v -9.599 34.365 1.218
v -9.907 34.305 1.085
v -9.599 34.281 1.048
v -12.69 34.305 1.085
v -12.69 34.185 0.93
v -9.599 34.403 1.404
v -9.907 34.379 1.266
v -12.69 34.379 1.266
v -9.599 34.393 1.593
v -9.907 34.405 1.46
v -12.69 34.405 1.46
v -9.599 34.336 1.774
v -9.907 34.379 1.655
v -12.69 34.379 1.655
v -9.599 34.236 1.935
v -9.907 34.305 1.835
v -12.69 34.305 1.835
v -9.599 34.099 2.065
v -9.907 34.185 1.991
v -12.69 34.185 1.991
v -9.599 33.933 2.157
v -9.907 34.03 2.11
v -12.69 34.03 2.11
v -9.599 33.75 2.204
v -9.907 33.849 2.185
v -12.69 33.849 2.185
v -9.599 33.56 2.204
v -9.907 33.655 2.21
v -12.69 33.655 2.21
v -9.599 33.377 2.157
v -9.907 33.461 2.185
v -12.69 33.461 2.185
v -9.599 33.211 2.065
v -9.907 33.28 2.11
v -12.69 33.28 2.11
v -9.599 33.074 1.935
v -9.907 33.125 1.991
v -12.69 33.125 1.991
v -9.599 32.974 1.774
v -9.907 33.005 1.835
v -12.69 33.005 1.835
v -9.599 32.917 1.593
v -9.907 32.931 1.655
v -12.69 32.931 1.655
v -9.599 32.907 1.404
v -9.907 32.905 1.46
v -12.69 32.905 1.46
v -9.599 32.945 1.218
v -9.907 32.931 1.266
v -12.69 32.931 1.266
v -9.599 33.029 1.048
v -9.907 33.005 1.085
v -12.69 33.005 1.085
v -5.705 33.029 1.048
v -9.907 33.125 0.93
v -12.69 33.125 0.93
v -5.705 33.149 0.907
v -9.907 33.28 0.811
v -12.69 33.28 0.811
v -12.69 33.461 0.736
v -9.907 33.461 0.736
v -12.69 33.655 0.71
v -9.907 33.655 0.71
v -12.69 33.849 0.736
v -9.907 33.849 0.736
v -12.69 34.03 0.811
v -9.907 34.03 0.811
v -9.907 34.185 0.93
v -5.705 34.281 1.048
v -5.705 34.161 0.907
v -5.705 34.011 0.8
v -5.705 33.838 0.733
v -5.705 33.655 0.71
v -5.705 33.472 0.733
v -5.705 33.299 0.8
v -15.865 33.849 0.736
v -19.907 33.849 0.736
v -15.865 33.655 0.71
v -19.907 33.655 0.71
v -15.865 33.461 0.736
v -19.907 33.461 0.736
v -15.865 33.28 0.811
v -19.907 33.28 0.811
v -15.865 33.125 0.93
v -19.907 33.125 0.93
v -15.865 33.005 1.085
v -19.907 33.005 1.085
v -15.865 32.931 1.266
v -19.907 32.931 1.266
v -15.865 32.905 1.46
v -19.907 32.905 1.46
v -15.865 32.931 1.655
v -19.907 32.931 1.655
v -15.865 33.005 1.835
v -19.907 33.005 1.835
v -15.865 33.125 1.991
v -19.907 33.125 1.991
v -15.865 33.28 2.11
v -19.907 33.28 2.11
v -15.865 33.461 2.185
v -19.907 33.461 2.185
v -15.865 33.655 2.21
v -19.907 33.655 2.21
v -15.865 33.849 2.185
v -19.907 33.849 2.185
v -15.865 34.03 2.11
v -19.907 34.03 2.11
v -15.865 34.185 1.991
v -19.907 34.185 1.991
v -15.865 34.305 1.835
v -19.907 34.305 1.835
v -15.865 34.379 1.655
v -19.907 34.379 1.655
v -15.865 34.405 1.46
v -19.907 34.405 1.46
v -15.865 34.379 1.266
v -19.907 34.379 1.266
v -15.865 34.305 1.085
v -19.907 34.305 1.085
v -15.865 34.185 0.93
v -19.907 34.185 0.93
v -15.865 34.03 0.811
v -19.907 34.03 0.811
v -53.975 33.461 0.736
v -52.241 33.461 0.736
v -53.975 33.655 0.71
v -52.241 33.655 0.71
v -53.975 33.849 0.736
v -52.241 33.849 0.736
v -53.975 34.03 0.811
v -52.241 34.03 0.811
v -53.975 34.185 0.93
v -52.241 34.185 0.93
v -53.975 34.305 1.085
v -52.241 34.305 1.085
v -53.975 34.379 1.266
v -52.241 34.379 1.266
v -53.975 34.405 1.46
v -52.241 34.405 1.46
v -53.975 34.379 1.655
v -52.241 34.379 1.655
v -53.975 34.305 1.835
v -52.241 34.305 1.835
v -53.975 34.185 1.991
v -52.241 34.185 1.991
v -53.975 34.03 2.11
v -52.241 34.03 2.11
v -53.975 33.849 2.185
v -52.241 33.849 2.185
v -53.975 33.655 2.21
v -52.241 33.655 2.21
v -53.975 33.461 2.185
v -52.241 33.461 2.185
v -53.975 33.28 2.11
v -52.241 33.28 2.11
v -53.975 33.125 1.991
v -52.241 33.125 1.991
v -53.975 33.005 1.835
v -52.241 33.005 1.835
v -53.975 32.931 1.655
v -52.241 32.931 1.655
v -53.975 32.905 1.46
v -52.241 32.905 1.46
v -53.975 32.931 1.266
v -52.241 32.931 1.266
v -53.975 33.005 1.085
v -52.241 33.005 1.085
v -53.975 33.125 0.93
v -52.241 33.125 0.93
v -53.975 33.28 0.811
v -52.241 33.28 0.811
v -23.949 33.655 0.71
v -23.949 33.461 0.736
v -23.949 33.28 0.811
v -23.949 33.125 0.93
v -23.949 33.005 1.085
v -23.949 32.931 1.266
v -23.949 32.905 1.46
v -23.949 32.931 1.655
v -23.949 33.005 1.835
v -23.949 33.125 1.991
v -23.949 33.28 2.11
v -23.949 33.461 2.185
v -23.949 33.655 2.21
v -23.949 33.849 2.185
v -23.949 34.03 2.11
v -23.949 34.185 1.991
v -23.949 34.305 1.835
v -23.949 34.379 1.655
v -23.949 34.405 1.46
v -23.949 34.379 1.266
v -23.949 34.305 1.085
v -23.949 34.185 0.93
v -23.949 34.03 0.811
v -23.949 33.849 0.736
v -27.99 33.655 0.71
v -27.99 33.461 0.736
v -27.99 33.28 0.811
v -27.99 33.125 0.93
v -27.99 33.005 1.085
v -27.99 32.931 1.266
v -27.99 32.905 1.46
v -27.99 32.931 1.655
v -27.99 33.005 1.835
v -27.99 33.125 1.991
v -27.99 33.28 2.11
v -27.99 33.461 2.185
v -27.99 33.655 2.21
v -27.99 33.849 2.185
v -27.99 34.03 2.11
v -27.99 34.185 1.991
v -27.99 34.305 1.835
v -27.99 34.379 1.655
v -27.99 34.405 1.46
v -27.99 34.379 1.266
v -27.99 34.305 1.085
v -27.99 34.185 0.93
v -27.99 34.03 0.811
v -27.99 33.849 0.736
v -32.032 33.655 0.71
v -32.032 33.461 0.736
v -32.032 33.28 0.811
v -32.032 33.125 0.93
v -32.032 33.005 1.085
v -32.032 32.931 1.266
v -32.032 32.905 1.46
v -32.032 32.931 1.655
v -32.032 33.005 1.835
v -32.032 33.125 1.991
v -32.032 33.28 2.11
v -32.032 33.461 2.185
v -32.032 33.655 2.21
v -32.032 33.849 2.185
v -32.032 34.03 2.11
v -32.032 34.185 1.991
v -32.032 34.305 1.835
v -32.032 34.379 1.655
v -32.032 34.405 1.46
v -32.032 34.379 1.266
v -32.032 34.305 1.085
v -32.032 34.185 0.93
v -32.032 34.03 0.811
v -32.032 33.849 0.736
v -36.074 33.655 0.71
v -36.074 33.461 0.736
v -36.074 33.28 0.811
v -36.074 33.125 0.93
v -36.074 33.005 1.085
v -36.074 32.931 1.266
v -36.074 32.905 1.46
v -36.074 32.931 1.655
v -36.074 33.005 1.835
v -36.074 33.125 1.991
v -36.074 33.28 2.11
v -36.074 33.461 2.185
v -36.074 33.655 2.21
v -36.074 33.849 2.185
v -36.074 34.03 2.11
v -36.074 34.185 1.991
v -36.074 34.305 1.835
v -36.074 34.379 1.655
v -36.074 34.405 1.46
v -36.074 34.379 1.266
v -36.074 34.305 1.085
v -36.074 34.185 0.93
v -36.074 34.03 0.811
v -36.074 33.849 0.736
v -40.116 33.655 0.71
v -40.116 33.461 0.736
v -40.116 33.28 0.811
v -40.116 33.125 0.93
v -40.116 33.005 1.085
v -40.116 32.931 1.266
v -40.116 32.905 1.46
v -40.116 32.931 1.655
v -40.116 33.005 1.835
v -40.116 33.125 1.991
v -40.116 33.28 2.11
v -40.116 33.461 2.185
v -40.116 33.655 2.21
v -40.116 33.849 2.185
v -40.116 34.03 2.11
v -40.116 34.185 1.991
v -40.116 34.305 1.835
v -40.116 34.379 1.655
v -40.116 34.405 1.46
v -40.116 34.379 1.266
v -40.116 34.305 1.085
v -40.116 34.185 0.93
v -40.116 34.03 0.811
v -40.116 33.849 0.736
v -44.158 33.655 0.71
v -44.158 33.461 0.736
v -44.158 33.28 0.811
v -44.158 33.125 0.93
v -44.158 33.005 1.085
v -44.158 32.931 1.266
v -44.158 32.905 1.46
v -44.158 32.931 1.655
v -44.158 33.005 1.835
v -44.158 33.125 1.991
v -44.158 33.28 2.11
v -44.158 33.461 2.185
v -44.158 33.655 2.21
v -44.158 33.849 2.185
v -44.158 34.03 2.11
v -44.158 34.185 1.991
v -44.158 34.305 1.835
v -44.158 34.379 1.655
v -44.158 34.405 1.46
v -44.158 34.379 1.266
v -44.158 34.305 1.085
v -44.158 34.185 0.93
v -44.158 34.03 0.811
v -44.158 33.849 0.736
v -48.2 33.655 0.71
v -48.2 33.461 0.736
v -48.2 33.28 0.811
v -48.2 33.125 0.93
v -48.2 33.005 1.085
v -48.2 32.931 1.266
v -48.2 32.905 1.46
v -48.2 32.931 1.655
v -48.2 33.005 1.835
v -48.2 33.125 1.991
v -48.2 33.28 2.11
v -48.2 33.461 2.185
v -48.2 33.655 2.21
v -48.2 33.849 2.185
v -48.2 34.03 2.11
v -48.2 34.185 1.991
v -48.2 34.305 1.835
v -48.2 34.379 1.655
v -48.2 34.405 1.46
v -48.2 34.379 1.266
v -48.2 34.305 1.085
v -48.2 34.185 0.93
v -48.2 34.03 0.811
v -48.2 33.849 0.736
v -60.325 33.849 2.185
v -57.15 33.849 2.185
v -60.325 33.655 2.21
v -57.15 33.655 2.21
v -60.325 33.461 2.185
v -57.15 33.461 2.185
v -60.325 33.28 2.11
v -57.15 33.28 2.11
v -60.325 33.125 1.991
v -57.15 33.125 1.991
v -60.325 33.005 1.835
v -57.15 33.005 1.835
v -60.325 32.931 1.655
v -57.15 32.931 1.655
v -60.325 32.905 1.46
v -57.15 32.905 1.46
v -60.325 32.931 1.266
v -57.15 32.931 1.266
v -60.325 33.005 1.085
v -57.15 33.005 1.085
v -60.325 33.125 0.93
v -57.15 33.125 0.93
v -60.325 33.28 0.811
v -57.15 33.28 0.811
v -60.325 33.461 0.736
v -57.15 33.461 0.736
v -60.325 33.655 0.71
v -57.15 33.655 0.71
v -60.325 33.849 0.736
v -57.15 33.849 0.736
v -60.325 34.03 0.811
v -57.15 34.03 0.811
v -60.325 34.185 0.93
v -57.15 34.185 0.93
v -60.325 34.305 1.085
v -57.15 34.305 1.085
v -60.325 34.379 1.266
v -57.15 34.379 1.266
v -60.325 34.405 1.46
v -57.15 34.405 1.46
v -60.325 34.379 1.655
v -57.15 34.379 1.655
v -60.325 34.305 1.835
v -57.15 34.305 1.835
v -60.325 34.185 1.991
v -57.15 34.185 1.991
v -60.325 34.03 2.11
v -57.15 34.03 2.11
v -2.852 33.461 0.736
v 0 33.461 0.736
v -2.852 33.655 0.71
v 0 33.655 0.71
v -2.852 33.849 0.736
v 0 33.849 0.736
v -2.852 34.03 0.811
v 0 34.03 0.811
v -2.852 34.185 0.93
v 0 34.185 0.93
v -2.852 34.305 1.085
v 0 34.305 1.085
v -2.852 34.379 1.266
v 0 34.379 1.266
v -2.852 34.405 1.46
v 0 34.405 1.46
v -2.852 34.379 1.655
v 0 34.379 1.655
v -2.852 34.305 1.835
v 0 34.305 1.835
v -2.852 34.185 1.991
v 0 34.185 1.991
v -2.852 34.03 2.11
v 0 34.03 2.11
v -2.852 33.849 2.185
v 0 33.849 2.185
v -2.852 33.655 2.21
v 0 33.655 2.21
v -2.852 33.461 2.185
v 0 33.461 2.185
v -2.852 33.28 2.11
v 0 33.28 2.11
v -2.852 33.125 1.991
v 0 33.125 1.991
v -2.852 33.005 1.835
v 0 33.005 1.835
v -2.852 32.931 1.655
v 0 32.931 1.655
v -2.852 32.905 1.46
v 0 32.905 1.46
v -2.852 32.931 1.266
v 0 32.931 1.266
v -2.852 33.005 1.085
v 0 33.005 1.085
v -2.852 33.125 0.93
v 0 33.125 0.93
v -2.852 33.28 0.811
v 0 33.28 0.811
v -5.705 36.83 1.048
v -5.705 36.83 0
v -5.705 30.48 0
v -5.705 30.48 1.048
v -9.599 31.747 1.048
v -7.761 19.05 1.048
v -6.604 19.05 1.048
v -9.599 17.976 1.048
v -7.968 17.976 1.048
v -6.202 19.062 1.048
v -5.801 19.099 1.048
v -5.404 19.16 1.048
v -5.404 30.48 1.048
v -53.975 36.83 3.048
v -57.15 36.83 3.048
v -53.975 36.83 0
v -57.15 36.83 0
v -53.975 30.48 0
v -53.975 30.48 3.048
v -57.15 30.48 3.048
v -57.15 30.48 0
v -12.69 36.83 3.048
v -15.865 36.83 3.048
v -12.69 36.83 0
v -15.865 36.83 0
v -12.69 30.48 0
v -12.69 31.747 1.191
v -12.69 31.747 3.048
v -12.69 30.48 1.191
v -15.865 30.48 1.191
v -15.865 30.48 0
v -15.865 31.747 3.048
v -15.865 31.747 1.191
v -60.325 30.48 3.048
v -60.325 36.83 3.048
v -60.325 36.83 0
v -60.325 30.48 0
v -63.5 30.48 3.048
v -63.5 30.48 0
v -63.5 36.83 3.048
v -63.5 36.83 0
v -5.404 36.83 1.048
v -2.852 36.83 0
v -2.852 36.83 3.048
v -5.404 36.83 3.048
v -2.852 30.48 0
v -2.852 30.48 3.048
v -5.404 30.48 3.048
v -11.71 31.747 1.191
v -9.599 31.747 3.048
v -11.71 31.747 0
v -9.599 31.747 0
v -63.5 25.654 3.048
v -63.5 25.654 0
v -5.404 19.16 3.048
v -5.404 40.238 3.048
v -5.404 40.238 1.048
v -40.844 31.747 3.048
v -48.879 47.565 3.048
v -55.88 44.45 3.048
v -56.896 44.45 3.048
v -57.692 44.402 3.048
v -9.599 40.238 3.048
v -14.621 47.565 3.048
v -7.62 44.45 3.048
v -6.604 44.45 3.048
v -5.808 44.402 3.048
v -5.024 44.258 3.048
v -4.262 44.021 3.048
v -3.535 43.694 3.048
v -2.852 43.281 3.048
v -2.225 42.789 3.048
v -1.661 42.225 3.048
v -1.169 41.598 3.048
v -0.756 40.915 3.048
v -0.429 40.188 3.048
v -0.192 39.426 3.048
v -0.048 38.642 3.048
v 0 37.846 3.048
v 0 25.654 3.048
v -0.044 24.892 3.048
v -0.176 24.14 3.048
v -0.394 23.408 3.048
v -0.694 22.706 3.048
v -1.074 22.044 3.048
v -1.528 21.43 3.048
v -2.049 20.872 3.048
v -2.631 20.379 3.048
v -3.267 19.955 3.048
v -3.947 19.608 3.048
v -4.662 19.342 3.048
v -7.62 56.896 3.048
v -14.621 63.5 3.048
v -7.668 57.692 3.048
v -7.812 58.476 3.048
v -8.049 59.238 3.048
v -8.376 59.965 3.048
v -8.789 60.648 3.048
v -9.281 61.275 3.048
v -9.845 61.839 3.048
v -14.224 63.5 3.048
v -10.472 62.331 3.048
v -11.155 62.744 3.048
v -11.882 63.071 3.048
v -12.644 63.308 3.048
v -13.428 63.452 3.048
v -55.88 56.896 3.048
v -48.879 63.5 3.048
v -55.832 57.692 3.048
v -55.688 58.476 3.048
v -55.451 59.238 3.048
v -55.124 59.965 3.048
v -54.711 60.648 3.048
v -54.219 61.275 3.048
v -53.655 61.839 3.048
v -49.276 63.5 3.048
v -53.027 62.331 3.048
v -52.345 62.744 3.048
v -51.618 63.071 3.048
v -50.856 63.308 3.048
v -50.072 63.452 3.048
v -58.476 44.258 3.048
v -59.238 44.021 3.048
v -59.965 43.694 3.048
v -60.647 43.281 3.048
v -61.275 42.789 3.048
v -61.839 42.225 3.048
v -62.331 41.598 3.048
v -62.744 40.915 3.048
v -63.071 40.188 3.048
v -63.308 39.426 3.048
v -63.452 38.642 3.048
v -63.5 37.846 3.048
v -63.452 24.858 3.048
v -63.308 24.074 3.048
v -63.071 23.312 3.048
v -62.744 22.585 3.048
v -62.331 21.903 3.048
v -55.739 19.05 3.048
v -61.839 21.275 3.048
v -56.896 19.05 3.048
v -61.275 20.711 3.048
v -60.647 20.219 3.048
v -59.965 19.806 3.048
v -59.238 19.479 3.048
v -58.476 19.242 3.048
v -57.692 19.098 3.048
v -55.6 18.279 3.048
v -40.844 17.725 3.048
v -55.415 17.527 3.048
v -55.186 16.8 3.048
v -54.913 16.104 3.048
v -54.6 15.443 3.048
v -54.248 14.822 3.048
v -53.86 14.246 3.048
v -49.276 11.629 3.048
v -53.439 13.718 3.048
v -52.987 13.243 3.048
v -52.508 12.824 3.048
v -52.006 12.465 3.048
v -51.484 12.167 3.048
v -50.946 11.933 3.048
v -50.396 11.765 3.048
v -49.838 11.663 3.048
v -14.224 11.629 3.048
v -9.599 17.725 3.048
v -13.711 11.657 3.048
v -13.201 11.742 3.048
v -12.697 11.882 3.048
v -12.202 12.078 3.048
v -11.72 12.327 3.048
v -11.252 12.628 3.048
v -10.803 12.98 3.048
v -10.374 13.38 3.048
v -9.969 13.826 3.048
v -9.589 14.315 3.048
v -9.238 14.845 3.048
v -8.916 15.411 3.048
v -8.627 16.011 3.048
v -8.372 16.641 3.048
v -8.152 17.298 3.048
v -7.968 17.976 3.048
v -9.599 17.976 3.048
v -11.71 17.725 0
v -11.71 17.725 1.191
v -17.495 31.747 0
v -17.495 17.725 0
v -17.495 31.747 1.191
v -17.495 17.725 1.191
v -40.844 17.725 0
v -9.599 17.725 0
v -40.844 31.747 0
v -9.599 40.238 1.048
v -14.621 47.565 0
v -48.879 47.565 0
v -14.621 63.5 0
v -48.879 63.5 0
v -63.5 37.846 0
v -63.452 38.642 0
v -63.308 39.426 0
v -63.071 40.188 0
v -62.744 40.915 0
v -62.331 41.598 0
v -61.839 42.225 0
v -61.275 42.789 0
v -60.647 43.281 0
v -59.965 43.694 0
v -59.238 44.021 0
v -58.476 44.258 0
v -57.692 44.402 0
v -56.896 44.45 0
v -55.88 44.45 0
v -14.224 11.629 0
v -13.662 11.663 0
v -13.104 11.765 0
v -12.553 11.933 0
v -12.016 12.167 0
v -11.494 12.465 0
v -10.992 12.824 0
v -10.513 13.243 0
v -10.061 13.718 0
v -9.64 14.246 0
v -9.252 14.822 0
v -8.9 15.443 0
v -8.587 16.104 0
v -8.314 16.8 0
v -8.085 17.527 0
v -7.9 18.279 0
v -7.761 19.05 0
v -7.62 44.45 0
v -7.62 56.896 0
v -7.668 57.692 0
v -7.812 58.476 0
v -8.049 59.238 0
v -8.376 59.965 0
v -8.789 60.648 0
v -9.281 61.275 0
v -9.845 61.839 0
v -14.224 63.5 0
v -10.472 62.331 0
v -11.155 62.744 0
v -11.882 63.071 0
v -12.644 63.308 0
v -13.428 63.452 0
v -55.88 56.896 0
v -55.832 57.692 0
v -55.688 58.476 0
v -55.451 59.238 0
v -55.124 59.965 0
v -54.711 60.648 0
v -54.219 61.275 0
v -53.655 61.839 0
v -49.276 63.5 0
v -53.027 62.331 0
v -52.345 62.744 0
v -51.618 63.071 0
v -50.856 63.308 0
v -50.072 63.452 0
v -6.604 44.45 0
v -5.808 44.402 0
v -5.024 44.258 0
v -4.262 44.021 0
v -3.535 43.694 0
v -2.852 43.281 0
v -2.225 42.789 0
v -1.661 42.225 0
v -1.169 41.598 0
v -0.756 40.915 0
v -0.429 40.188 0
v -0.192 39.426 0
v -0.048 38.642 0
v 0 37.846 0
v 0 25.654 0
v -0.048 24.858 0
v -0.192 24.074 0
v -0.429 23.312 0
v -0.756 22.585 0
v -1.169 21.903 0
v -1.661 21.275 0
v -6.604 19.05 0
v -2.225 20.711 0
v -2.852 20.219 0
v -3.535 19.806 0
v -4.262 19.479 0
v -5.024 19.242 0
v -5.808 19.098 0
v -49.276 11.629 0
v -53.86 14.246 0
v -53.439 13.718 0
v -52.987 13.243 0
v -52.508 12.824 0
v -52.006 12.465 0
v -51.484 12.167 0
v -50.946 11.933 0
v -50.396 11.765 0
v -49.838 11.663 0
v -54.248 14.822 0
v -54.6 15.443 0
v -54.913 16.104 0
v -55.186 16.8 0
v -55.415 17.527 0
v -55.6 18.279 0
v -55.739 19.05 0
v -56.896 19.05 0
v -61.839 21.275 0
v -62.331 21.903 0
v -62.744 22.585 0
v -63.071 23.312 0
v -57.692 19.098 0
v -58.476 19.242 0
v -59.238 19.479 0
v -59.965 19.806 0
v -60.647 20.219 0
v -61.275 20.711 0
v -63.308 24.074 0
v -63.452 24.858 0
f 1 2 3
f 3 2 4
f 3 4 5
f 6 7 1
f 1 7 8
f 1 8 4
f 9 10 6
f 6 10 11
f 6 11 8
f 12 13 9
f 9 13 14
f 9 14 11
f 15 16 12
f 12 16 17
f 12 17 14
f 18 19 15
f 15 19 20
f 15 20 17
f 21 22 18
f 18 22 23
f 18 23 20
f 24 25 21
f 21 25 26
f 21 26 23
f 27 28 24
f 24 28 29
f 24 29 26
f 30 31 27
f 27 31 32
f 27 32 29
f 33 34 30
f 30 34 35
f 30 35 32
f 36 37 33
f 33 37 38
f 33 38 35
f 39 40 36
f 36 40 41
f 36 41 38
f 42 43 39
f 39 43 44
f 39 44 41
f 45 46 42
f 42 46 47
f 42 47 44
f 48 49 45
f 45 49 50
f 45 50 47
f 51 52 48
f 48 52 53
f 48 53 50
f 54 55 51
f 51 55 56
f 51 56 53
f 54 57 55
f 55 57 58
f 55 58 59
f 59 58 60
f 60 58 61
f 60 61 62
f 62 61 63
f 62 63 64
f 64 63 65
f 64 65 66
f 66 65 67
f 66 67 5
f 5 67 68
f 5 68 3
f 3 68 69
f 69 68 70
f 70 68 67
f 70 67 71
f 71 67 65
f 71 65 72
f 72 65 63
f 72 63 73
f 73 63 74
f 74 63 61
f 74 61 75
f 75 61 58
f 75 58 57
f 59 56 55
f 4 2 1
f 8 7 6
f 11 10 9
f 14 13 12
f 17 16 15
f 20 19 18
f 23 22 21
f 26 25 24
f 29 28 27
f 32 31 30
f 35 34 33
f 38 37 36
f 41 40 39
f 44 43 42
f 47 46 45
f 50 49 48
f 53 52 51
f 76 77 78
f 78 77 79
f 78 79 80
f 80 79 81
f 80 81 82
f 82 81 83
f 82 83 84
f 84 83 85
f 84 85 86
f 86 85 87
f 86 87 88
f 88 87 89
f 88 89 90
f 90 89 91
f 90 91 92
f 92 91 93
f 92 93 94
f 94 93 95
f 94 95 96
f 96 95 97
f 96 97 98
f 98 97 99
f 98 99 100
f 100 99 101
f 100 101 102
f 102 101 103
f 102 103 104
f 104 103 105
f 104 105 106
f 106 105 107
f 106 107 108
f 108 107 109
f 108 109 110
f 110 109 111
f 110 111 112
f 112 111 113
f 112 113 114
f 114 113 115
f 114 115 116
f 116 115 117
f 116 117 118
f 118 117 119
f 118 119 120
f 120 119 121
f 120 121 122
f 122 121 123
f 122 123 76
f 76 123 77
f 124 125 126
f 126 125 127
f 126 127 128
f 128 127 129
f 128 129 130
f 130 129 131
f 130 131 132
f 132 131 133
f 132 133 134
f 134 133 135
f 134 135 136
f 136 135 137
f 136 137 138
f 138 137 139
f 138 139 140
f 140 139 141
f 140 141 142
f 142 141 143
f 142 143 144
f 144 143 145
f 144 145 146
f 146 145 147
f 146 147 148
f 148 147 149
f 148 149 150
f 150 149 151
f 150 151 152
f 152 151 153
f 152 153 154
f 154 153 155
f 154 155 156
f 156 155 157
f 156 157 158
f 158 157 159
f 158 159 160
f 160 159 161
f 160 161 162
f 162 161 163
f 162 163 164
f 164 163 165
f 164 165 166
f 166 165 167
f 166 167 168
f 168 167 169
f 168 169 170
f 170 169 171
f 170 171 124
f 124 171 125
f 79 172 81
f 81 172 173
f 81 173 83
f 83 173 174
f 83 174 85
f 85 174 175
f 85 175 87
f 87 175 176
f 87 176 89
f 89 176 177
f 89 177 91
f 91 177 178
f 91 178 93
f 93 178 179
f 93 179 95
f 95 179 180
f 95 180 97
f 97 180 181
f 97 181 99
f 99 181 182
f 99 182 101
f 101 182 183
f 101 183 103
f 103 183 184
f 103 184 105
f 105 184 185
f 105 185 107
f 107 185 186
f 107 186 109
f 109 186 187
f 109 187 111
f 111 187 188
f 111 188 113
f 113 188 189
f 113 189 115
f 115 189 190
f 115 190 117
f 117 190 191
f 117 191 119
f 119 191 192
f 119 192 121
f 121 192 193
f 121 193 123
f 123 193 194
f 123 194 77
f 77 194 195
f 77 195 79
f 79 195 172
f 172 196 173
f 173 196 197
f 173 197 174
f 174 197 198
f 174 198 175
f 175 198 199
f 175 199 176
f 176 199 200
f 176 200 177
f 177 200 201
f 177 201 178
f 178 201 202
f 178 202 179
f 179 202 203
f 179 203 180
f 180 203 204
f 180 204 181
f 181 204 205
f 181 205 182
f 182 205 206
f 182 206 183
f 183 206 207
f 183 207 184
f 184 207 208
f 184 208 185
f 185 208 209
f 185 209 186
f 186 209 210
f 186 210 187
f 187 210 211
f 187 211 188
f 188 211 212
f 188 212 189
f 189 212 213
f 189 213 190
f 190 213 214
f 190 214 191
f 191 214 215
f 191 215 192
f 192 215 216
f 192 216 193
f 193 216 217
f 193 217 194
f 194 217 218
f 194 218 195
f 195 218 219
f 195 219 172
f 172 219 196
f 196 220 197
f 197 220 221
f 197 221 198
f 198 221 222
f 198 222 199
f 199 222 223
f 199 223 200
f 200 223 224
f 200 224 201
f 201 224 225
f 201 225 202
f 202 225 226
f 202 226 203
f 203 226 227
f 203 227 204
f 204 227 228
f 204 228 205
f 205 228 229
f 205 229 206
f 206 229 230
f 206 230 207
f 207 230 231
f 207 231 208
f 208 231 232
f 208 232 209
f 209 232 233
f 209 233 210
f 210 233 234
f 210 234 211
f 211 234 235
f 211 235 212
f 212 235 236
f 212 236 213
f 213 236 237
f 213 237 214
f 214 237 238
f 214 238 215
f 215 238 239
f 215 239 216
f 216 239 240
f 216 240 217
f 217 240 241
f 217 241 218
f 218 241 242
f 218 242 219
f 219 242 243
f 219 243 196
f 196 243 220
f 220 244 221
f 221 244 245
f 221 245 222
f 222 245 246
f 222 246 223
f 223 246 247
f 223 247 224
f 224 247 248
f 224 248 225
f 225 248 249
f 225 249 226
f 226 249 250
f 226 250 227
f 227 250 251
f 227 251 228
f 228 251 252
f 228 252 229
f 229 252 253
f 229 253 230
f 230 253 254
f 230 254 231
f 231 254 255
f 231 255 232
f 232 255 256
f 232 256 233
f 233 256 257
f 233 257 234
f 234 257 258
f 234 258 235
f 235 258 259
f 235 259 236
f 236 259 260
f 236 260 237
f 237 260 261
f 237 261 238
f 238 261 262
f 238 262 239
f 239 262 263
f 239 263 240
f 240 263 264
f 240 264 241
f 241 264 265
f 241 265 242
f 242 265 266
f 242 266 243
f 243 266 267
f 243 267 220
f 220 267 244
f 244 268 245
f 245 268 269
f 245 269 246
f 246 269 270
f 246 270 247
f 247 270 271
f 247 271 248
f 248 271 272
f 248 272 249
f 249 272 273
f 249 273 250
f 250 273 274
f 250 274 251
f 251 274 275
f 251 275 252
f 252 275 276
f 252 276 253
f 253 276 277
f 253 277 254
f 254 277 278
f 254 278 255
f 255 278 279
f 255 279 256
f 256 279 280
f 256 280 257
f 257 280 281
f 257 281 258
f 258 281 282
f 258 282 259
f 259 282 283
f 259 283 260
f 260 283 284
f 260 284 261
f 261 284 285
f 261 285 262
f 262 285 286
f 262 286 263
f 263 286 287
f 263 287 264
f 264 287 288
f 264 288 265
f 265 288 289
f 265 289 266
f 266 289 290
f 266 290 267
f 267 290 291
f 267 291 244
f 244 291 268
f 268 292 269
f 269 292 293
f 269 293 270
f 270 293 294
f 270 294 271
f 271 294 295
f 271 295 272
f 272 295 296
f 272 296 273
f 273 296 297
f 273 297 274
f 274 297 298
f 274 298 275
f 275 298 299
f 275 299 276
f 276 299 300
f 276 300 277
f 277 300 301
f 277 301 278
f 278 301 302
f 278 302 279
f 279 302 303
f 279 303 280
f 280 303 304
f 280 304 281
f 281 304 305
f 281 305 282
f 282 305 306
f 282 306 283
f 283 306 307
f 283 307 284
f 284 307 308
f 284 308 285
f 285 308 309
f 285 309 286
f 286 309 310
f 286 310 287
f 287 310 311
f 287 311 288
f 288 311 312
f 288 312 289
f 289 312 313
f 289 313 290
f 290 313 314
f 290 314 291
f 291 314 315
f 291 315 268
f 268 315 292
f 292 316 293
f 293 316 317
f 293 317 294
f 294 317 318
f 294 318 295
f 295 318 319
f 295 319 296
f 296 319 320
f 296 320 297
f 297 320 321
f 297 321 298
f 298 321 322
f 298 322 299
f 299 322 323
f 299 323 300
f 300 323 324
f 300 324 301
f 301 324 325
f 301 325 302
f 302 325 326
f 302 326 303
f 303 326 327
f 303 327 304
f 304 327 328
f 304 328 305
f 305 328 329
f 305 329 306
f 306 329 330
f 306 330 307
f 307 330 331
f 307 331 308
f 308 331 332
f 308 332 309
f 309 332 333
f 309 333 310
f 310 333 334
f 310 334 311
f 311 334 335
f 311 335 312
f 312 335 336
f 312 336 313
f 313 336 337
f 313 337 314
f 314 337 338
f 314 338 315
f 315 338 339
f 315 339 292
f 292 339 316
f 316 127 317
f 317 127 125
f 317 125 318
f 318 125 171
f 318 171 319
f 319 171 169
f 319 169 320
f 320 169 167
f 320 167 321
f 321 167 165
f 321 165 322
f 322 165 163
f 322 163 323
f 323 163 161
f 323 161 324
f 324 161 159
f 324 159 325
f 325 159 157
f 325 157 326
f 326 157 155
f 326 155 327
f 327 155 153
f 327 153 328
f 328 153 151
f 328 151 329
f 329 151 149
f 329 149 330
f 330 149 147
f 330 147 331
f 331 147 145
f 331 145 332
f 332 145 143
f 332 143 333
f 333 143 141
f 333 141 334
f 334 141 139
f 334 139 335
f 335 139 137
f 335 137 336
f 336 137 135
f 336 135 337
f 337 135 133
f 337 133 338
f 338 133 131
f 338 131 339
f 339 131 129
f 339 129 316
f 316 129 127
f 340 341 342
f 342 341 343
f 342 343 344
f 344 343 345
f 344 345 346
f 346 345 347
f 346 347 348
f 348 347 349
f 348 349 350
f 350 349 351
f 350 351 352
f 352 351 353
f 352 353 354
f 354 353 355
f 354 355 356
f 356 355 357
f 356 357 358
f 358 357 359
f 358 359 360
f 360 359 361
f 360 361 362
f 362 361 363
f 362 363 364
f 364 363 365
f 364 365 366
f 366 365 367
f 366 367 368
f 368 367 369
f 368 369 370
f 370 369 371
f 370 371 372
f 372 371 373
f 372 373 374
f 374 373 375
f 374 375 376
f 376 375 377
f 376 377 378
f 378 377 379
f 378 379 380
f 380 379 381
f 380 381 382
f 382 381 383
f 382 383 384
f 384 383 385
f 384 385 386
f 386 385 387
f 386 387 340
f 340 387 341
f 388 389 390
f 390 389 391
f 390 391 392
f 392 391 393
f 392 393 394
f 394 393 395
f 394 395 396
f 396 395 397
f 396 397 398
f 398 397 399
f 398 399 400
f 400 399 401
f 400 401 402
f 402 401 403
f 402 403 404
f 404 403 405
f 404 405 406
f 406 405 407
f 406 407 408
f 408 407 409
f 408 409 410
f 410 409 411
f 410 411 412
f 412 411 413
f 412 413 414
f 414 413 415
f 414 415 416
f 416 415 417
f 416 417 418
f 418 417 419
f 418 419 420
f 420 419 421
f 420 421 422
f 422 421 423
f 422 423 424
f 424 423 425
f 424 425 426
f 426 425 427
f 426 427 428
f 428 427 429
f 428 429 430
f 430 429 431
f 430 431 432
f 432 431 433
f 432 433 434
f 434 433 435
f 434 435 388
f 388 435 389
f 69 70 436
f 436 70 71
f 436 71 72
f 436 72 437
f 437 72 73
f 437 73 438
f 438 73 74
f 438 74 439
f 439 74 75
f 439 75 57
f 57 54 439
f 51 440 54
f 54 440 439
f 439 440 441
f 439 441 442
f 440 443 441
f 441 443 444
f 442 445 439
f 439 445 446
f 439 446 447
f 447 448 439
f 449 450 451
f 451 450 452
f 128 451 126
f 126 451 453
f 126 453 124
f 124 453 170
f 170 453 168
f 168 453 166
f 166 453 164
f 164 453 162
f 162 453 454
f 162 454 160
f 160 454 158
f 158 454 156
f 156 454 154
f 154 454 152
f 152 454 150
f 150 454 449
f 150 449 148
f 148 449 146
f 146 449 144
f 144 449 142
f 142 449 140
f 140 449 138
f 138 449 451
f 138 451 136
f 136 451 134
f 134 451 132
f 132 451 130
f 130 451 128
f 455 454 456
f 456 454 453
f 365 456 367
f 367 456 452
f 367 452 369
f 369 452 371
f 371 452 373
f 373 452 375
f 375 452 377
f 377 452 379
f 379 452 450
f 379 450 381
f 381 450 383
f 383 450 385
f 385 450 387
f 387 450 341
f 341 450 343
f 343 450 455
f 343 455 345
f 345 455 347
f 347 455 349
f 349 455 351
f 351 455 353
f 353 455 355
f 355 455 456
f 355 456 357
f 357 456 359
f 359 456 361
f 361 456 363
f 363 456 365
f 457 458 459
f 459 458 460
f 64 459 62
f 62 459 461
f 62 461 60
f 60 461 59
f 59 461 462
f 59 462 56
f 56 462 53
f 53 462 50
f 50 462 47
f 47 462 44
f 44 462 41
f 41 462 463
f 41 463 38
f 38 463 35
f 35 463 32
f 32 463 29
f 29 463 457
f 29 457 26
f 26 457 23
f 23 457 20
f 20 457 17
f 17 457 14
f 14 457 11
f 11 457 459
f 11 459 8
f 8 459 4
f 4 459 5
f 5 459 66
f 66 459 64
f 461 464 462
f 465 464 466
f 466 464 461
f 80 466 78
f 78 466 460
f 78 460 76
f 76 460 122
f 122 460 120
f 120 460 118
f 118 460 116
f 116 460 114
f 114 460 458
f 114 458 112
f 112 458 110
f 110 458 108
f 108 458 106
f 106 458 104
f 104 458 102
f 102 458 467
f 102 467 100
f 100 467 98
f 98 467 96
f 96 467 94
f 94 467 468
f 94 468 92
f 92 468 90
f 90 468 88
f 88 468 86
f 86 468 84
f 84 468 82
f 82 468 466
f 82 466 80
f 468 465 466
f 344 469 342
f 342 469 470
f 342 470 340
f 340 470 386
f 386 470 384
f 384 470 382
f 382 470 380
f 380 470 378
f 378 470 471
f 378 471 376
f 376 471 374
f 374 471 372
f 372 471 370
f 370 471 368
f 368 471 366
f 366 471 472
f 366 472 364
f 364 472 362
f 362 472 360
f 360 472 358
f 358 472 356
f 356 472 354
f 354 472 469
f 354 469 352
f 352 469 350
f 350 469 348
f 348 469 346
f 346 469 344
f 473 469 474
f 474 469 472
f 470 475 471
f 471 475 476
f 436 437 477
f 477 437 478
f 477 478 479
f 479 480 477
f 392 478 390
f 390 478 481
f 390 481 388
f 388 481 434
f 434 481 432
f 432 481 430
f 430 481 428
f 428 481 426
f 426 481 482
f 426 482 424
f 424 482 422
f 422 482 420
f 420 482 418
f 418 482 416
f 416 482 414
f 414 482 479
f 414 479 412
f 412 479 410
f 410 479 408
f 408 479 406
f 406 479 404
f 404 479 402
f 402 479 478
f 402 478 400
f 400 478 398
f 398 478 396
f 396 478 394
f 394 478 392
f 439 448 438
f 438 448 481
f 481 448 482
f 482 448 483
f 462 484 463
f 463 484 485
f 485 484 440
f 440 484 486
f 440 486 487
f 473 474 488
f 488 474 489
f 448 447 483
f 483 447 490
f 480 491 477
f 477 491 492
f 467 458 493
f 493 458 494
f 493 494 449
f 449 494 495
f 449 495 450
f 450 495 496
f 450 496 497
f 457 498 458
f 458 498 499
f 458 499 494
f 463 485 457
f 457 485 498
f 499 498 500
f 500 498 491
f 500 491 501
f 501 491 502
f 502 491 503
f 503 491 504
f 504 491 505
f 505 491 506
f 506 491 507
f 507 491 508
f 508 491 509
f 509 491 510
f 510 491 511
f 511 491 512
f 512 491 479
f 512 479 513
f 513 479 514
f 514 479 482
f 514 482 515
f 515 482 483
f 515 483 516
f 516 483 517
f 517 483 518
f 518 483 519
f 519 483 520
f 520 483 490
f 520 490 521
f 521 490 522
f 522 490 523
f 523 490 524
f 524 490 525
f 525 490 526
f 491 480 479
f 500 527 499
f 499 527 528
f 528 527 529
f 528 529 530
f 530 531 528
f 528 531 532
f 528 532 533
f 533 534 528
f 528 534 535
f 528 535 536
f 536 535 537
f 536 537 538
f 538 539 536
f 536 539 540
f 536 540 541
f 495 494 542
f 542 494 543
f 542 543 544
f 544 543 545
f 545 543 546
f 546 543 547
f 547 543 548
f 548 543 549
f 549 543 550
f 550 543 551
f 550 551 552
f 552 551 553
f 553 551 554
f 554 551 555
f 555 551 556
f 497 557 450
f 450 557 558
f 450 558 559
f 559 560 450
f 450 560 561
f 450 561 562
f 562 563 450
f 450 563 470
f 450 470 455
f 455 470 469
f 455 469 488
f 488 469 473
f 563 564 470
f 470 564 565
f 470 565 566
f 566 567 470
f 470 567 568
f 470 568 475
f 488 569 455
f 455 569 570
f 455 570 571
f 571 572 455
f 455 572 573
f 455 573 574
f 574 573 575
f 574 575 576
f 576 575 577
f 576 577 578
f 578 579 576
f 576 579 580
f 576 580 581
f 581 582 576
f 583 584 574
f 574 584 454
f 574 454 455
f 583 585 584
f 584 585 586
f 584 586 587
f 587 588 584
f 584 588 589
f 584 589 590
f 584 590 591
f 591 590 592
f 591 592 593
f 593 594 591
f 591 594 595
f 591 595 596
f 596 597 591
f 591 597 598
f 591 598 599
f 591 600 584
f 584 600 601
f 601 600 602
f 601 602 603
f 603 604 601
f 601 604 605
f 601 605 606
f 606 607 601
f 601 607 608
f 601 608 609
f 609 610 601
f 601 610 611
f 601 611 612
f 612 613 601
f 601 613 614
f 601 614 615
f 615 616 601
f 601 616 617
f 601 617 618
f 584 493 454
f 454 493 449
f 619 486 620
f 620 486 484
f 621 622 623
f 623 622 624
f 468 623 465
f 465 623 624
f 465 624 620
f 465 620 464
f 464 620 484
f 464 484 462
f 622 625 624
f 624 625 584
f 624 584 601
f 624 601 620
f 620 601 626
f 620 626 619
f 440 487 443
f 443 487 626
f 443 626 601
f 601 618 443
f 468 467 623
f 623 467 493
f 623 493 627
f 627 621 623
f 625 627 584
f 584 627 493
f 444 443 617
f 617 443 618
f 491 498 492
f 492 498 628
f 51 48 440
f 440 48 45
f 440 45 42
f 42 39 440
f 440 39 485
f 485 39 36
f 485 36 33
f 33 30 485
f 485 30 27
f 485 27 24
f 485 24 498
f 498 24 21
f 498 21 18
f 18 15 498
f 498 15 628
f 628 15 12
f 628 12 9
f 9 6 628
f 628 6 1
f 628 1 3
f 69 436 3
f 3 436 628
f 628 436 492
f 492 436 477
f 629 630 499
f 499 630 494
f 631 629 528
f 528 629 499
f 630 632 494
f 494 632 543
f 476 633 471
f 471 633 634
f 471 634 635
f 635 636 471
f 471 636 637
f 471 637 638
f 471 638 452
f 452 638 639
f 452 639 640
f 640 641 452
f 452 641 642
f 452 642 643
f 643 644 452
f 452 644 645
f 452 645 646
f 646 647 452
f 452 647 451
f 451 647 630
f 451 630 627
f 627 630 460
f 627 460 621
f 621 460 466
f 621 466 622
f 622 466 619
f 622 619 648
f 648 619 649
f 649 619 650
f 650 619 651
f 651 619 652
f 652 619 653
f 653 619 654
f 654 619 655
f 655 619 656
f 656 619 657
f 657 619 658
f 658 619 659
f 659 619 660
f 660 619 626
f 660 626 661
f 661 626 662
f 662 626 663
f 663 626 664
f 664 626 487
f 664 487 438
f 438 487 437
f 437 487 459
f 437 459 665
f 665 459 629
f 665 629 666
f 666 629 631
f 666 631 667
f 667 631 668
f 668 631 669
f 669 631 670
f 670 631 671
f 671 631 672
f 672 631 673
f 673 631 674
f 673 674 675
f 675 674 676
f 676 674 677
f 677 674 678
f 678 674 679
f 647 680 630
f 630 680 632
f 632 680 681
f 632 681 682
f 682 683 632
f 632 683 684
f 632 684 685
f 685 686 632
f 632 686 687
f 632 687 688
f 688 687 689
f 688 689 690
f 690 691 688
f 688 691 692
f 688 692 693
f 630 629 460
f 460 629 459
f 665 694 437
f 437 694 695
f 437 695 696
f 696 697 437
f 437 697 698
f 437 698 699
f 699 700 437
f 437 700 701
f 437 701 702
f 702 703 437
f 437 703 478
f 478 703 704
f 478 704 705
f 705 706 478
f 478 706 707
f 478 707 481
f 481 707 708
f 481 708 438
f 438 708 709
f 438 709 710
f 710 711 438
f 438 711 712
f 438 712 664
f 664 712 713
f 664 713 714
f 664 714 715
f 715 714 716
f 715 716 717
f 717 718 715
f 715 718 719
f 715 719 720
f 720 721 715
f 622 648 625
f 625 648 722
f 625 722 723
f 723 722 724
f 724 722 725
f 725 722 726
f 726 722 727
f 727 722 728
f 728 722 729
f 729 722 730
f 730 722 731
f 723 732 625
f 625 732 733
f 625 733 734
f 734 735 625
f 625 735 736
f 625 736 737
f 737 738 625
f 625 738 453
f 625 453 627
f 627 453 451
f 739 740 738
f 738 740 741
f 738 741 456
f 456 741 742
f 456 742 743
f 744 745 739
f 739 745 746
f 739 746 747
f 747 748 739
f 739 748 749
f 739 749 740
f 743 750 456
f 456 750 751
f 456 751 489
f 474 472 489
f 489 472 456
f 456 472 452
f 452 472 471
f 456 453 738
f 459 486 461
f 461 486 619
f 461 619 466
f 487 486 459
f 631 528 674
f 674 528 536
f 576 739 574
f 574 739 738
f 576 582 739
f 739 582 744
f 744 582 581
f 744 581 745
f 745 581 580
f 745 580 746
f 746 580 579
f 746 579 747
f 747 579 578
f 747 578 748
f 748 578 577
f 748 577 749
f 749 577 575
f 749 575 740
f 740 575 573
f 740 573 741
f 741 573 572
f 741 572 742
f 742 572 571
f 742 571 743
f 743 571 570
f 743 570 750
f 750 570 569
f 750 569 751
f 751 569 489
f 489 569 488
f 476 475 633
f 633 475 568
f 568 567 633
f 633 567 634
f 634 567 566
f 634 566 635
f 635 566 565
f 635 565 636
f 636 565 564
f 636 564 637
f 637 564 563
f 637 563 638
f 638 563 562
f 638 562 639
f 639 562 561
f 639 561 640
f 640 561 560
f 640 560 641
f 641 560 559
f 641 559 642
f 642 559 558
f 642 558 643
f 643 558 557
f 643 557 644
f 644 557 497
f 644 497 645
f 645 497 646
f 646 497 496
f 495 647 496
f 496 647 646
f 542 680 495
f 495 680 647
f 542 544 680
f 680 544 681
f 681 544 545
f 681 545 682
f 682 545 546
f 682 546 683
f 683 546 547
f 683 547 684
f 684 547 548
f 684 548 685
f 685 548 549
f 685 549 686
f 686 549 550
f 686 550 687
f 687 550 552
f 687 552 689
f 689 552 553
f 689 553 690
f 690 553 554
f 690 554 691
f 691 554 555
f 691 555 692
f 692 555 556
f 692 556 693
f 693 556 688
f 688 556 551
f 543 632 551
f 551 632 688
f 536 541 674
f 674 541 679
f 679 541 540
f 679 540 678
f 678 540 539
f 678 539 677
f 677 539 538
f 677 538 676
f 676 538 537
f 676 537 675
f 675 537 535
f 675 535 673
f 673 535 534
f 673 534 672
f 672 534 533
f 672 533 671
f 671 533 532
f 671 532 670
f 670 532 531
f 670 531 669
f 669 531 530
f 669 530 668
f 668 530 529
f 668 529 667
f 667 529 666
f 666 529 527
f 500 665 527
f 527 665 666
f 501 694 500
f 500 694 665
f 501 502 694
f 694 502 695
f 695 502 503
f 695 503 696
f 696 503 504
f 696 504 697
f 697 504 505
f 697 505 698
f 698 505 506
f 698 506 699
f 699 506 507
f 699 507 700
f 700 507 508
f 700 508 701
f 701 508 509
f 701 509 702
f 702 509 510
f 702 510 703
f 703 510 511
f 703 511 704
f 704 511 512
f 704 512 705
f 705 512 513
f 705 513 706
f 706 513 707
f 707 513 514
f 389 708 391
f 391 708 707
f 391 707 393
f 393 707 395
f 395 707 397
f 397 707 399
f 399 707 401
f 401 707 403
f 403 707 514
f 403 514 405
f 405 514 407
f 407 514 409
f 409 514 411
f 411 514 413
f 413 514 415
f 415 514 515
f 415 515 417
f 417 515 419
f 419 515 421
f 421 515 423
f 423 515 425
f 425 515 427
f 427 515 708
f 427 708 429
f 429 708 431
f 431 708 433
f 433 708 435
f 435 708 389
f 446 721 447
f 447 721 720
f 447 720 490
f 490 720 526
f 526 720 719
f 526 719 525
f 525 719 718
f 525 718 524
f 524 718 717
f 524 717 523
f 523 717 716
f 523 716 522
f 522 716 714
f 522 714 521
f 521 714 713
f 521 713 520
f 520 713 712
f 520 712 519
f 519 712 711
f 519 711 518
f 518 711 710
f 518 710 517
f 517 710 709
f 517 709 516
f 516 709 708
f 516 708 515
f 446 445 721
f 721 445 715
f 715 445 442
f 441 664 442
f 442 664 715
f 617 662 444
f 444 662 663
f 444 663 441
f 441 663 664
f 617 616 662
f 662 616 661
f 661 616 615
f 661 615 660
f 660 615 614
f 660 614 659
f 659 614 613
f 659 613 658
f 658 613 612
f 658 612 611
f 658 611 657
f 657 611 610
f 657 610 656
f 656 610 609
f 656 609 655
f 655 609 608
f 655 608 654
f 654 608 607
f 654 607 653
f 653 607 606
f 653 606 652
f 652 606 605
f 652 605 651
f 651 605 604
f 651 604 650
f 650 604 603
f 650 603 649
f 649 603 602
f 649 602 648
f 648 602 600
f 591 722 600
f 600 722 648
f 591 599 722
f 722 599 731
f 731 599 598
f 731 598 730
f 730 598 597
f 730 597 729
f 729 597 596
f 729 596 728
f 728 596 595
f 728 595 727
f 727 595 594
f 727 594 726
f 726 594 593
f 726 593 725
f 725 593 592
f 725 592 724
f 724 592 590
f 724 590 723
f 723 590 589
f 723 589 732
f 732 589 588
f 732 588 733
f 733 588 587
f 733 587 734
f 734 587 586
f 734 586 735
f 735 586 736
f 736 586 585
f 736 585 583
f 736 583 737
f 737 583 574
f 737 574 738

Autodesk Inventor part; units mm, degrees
ref_plane "YZ Plane" through (0, 0, 0) normal (1, 0, 0) x (0, 1, 0)
ref_plane "XZ Plane" through (0, 0, 0) normal (0, 1, 0) x (-1, 0, 0)
ref_plane "XY Plane" through (0, 0, 0) normal (0, 0, 1) x (1, 0, 0)
ref_plane "Work Plane1" through (3.6062, 5.0251, 0) normal (0, 0, 1) x (1, 0, 0)
sketch "Sketch1" plane through (3.6062, 5.0251, 0) normal (0, 0, 1) x (1, 0, 0)
  line L0 (-59.3453, 14.0249) -> (-60.5022, 14.0249)
  ellipse E0 centre (-52.8822, 15.9436) end of major axis (-52.8822, 6.6041) minor radius 6.604 (-59.3453, 14.0249) -> (-52.8822, 6.6041) ccw
  line L1 (-52.8822, 6.6041) -> (-17.8302, 6.6041)
  ellipse E1 centre (-17.8302, 15.9436) end of major axis (-17.8302, 25.2831) minor radius 6.604 (-17.8302, 6.6041) -> (-11.367, 14.0249) ccw
  line L2 (-10.2102, 14.0249) -> (-11.367, 14.0249)
  arc A0 (-10.2102, 14.0249) -> (-3.6062, 20.6289) centre (-10.2102, 20.6289) ccw
  line L3 (-3.6062, 20.6289) -> (-3.6062, 32.8209)
  arc A1 (-3.6062, 32.8209) -> (-10.2102, 39.4249) centre (-10.2102, 32.8209) ccw
  line L4 (-11.2262, 39.4249) -> (-10.2102, 39.4249)
  line L5 (-11.2262, 51.8709) -> (-11.2262, 39.4249)
  arc A2 (-11.2262, 51.8709) -> (-17.8302, 58.4749) centre (-17.8302, 51.8709) ccw
  line L6 (-17.8302, 58.4749) -> (-52.8822, 58.4749)
  arc A3 (-52.8822, 58.4749) -> (-59.4862, 51.8709) centre (-52.8822, 51.8709) ccw
  line L7 (-59.4862, 39.4249) -> (-59.4862, 51.8709)
  line L8 (-60.5022, 39.4249) -> (-59.4862, 39.4249)
  arc A4 (-60.5022, 39.4249) -> (-67.1062, 32.8209) centre (-60.5022, 32.8209) ccw
  line L9 (-67.1062, 20.6289) -> (-67.1062, 32.8209)
  arc A5 (-67.1062, 20.6289) -> (-60.5022, 14.0249) centre (-60.5022, 20.6289) ccw
  line L10 (-52.8822, 6.6041) -> (-17.8302, 6.6041)
  point P0 (-3.6062, -5.0251)
extrude "Plate1" add sketch "Sketch1" along normal blind 3.048
sketch "Sketch2" plane through (3.6062, 5.0251, 3.048) normal (0, 0, 1) x (1, 0, 0)
  line L0 (-19.2272, 69.2699) -> (-19.2272, 51.2359) projected
  line L1 (-42.2142, 43.5397) -> (-28.4982, 43.5397) projected
  line L2 (-51.4852, 51.2359) -> (-51.4852, 69.2699) projected
  line L3 (-19.2272, 58.5208) -> (-19.2272, 43.5397)
  line L4 (-19.2272, 43.5397) -> (-51.4852, 43.5397)
  line L5 (-51.4852, 43.5397) -> (-51.4852, 64.3147)
  line L6 (-52.4852, 58.4749) -> (-52.4852, 42.5397)
  line L7 (-52.4852, 42.5397) -> (-18.2272, 42.5397)
  line L8 (-18.2272, 42.5397) -> (-18.2272, 58.5208)
  line L9 (-52.8822, 58.4749) -> (-17.8302, 58.4749) projected
  point P0 (0, 0)
  point P1 (-18.2272, 58.4749)
  dimension "d2" = 1
extrude "Extrusion2" cut sketch "Sketch2" against normal through all
sketch "Sketch4" plane through (3.6062, 5.0251, 3.048) normal (0, 0, 1) x (1, 0, 0)
  line L0 (-12.8862, 21.4549) -> (-12.8862, 17.4549) projected
  line L1 (-9.0098, 35.2125) -> (-13.2052, 35.2125)
  line L2 (-13.2052, 35.2125) -> (-13.2052, 18.2304)
  line L3 (-13.2052, 18.2304) -> (-12.8862, 18.2304)
  line L4 (-9.0098, 16.8588) -> (-9.0098, 35.2125)
  line L5 (-9.0098, 35.2125) -> (-13.2052, 18.2304) construction
  line L6 (-13.2052, 35.2125) -> (-9.0098, 16.8588) construction
  line L7 (-12.8862, 21.4549) -> (-12.8862, 17.4549) projected
  line L8 (-3.6062, 30.2174) -> (-8.2582, 30.2174)
  line L9 (-12.8862, 17.9549) -> (-3.6562, 17.9549)
  line L10 (-12.8862, 21.4549) -> (-12.8862, 17.4549) projected
  line L11 (-13.2052, 18.2304) -> (-12.8862, 18.2304)
  line L12 (-9.0098, 16.8588) -> (-9.0098, 12.9511)
  line L13 (-9.0098, 12.9511) -> (-13.2052, 12.9511)
  line L14 (-13.2052, 12.9511) -> (-13.2052, 18.2304)
  point P0 (-3.6062, -5.0251)
  point P1 (-11.1889, 26.3919)
  point P2 (-11.1075, 26.7215)
  dimension "d18" = 4.1954
  dimension "d23" = 4.9951
  dimension "d24" = 0.3191
  dimension "d25" = 5.0038
extrude "Extrusion3" cut sketch "Sketch4" against normal blind 2
sketch "Sketch5" plane through (3.6062, 5.0251, 3.048) normal (0, 0, 1) x (1, 0, 0)
  line L0 (-52.4852, 42.5397) -> (-52.4852, 58.4749) projected
  line L1 (-52.8822, 58.4749) -> (-52.4852, 58.4749) projected
  arc A0 (-52.8822, 58.4749) -> (-59.4862, 51.8709) centre (-52.8822, 51.8709) ccw projected
  line L2 (-59.4862, 39.4249) -> (-59.4862, 51.8709) projected
  line L3 (-60.5022, 39.4249) -> (-59.4862, 39.4249) projected
  arc A1 (-60.5022, 39.4249) -> (-67.1062, 32.8209) centre (-60.5022, 32.8209) ccw projected
  line L4 (-67.1062, 20.6289) -> (-67.1062, 32.8209) projected
  arc A2 (-67.1062, 20.6289) -> (-60.5022, 14.0249) centre (-60.5022, 20.6289) ccw projected
  line L5 (-59.3453, 14.0249) -> (-60.5022, 14.0249) projected
  ellipse E0 centre (-52.8822, 15.9436) end of major axis (-52.8822, 6.6041) minor radius 6.604 (-59.3453, 14.0249) -> (-52.8822, 6.6041) ccw projected
  line L6 (-17.8302, 6.6041) -> (-52.8822, 6.6041) projected
  ellipse E1 centre (-17.8302, 15.9436) end of major axis (-17.8302, 25.2831) minor radius 6.604 (-17.8302, 6.6041) -> (-11.5743, 12.9511) ccw projected
  arc A3 (-9.0098, 14.1349) -> (-3.6062, 20.6289) centre (-10.2102, 20.6289) ccw projected
  line L7 (-3.6062, 32.8209) -> (-3.6062, 20.6289) projected
  arc A4 (-3.6062, 32.8209) -> (-10.2102, 39.4249) centre (-10.2102, 32.8209) ccw projected
  line L8 (-11.2262, 39.4249) -> (-10.2102, 39.4249) projected
  line L9 (-11.2262, 51.8709) -> (-11.2262, 39.4249) projected
  arc A5 (-11.2262, 51.8709) -> (-17.8302, 58.4749) centre (-17.8302, 51.8709) ccw projected
  line L10 (-18.2272, 58.4749) -> (-17.8302, 58.4749) projected
  line L11 (-18.2272, 58.4749) -> (-18.2272, 42.5397) projected
  line L12 (-18.2272, 42.5397) -> (-52.4852, 42.5397) projected
  line L13 (-13.2052, 12.9511) -> (-13.2052, 35.2125) projected
  line L14 (-44.45, 12.7) -> (-13.2052, 12.7)
  line L15 (-13.2052, 12.7) -> (-13.2052, 26.7215)
  line L16 (-13.2052, 26.7215) -> (-44.45, 26.7215)
  line L17 (-44.45, 26.7215) -> (-44.45, 12.7)
  line L18 (-11.5743, 12.9511) -> (-13.2052, 12.9511) projected
  line L19 (-13.2052, 12.9511) -> (-13.2052, 35.2125) projected
  line L20 (-13.2052, 35.2125) -> (-9.0098, 35.2125) projected
  line L21 (-9.0098, 35.2125) -> (-9.0098, 14.1349) projected
  point P0 (-3.6062, -5.0251)
  point P1 (-13.2052, 18.2304)
  point P2 (-41.0062, 13.5399)
  point P3 (-60.0729, 27.6299)
  dimension "d19" = 14.0215
  dimension "d20" = 31.2448
extrude "Extrusion4" cut sketch "Sketch5" against normal blind 58.7375 contours L13 L15 L14 L17 L16
sketch "Sketch6" plane through (3.6062, 5.0251, 0) normal (0, 0, -1) x (-1, 0, 0)
  line L0 (13.2052, 12.7) -> (44.45, 12.7) projected
  line L1 (13.2052, 26.7215) -> (44.45, 26.7215) projected
  line L2 (44.45, 12.7) -> (13.2052, 12.7) projected
  line L3 (21.1013, 12.7) -> (21.1013, 26.7215)
  line L4 (15.3165, 12.7) -> (15.3165, 26.7215)
  point P0 (3.6062, -5.0251)
extrude "Extrusion5" add sketch "Sketch6" against normal blind 1.1906
sketch "Sketch7" plane through (3.6062, 5.0251, 0) normal (0, 0, -1) x (-1, 0, 0)
  line L0 (67.1062, 25.4549) -> (67.1062, 31.8049) projected
  line L1 (67.1062, 31.8049) -> (63.9312, 31.8049) projected
  line L2 (63.9312, 31.8049) -> (63.9312, 25.4549) projected
  line L3 (63.9312, 25.4549) -> (67.1062, 25.4549) projected
  line L4 (57.5812, 31.8049) -> (57.5812, 25.4549) projected
  line L5 (57.5812, 25.4549) -> (60.7562, 25.4549) projected
  line L6 (60.7562, 25.4549) -> (60.7562, 31.8049) projected
  line L7 (60.7562, 31.8049) -> (57.5812, 31.8049) projected
  line L8 (6.4587, 31.8049) -> (6.4587, 25.4549) projected
  line L9 (6.4587, 25.4549) -> (9.3112, 25.4549) projected
  line L10 (9.3112, 25.4549) -> (9.3112, 31.8049) projected
  line L11 (9.3112, 31.8049) -> (6.4587, 31.8049) projected
  line L12 (19.4712, 25.4549) -> (19.4712, 31.8049) projected
  line L13 (19.4712, 31.8049) -> (16.2962, 31.8049) projected
  line L14 (16.2962, 31.8049) -> (16.2962, 25.4549) projected
  line L15 (16.2962, 25.4549) -> (19.4712, 25.4549) projected
  point P0 (3.6062, -5.0251)
extrude "Extrusion6" cut sketch "Sketch7" against normal blind 3.175
sketch "Sketch8" plane through (-60.325, 30.48, 0) normal (-1, 0, 0) x (0, 0, 1)
  circle A0 centre (1.4605, 3.175) radius 0.75 projected
  point P0 (0, -30.48)
extrude "Extrusion7" cut sketch "Sketch8" against normal through all
equation "\"d5\" = Thickness"
equation "\"BendRadius\" = Thickness"
equation "\"BendReliefWidth\" = Thickness"
equation "\"BendReliefDepth\" = 0.5 * Thickness"
equation "\"CornerReliefSize\" = 4 * Thickness"
equation "\"MinimumRemnant\" = 2 * Thickness"
equation "\"TransitionRadius\" = BendRadius"
equation "\"JacobiRadiusSize\" = Thickness"
equation "\"GapSize\" = Thickness"
equation "\"Thickness\" = 3.048"
properties part number "_3DPrint"
